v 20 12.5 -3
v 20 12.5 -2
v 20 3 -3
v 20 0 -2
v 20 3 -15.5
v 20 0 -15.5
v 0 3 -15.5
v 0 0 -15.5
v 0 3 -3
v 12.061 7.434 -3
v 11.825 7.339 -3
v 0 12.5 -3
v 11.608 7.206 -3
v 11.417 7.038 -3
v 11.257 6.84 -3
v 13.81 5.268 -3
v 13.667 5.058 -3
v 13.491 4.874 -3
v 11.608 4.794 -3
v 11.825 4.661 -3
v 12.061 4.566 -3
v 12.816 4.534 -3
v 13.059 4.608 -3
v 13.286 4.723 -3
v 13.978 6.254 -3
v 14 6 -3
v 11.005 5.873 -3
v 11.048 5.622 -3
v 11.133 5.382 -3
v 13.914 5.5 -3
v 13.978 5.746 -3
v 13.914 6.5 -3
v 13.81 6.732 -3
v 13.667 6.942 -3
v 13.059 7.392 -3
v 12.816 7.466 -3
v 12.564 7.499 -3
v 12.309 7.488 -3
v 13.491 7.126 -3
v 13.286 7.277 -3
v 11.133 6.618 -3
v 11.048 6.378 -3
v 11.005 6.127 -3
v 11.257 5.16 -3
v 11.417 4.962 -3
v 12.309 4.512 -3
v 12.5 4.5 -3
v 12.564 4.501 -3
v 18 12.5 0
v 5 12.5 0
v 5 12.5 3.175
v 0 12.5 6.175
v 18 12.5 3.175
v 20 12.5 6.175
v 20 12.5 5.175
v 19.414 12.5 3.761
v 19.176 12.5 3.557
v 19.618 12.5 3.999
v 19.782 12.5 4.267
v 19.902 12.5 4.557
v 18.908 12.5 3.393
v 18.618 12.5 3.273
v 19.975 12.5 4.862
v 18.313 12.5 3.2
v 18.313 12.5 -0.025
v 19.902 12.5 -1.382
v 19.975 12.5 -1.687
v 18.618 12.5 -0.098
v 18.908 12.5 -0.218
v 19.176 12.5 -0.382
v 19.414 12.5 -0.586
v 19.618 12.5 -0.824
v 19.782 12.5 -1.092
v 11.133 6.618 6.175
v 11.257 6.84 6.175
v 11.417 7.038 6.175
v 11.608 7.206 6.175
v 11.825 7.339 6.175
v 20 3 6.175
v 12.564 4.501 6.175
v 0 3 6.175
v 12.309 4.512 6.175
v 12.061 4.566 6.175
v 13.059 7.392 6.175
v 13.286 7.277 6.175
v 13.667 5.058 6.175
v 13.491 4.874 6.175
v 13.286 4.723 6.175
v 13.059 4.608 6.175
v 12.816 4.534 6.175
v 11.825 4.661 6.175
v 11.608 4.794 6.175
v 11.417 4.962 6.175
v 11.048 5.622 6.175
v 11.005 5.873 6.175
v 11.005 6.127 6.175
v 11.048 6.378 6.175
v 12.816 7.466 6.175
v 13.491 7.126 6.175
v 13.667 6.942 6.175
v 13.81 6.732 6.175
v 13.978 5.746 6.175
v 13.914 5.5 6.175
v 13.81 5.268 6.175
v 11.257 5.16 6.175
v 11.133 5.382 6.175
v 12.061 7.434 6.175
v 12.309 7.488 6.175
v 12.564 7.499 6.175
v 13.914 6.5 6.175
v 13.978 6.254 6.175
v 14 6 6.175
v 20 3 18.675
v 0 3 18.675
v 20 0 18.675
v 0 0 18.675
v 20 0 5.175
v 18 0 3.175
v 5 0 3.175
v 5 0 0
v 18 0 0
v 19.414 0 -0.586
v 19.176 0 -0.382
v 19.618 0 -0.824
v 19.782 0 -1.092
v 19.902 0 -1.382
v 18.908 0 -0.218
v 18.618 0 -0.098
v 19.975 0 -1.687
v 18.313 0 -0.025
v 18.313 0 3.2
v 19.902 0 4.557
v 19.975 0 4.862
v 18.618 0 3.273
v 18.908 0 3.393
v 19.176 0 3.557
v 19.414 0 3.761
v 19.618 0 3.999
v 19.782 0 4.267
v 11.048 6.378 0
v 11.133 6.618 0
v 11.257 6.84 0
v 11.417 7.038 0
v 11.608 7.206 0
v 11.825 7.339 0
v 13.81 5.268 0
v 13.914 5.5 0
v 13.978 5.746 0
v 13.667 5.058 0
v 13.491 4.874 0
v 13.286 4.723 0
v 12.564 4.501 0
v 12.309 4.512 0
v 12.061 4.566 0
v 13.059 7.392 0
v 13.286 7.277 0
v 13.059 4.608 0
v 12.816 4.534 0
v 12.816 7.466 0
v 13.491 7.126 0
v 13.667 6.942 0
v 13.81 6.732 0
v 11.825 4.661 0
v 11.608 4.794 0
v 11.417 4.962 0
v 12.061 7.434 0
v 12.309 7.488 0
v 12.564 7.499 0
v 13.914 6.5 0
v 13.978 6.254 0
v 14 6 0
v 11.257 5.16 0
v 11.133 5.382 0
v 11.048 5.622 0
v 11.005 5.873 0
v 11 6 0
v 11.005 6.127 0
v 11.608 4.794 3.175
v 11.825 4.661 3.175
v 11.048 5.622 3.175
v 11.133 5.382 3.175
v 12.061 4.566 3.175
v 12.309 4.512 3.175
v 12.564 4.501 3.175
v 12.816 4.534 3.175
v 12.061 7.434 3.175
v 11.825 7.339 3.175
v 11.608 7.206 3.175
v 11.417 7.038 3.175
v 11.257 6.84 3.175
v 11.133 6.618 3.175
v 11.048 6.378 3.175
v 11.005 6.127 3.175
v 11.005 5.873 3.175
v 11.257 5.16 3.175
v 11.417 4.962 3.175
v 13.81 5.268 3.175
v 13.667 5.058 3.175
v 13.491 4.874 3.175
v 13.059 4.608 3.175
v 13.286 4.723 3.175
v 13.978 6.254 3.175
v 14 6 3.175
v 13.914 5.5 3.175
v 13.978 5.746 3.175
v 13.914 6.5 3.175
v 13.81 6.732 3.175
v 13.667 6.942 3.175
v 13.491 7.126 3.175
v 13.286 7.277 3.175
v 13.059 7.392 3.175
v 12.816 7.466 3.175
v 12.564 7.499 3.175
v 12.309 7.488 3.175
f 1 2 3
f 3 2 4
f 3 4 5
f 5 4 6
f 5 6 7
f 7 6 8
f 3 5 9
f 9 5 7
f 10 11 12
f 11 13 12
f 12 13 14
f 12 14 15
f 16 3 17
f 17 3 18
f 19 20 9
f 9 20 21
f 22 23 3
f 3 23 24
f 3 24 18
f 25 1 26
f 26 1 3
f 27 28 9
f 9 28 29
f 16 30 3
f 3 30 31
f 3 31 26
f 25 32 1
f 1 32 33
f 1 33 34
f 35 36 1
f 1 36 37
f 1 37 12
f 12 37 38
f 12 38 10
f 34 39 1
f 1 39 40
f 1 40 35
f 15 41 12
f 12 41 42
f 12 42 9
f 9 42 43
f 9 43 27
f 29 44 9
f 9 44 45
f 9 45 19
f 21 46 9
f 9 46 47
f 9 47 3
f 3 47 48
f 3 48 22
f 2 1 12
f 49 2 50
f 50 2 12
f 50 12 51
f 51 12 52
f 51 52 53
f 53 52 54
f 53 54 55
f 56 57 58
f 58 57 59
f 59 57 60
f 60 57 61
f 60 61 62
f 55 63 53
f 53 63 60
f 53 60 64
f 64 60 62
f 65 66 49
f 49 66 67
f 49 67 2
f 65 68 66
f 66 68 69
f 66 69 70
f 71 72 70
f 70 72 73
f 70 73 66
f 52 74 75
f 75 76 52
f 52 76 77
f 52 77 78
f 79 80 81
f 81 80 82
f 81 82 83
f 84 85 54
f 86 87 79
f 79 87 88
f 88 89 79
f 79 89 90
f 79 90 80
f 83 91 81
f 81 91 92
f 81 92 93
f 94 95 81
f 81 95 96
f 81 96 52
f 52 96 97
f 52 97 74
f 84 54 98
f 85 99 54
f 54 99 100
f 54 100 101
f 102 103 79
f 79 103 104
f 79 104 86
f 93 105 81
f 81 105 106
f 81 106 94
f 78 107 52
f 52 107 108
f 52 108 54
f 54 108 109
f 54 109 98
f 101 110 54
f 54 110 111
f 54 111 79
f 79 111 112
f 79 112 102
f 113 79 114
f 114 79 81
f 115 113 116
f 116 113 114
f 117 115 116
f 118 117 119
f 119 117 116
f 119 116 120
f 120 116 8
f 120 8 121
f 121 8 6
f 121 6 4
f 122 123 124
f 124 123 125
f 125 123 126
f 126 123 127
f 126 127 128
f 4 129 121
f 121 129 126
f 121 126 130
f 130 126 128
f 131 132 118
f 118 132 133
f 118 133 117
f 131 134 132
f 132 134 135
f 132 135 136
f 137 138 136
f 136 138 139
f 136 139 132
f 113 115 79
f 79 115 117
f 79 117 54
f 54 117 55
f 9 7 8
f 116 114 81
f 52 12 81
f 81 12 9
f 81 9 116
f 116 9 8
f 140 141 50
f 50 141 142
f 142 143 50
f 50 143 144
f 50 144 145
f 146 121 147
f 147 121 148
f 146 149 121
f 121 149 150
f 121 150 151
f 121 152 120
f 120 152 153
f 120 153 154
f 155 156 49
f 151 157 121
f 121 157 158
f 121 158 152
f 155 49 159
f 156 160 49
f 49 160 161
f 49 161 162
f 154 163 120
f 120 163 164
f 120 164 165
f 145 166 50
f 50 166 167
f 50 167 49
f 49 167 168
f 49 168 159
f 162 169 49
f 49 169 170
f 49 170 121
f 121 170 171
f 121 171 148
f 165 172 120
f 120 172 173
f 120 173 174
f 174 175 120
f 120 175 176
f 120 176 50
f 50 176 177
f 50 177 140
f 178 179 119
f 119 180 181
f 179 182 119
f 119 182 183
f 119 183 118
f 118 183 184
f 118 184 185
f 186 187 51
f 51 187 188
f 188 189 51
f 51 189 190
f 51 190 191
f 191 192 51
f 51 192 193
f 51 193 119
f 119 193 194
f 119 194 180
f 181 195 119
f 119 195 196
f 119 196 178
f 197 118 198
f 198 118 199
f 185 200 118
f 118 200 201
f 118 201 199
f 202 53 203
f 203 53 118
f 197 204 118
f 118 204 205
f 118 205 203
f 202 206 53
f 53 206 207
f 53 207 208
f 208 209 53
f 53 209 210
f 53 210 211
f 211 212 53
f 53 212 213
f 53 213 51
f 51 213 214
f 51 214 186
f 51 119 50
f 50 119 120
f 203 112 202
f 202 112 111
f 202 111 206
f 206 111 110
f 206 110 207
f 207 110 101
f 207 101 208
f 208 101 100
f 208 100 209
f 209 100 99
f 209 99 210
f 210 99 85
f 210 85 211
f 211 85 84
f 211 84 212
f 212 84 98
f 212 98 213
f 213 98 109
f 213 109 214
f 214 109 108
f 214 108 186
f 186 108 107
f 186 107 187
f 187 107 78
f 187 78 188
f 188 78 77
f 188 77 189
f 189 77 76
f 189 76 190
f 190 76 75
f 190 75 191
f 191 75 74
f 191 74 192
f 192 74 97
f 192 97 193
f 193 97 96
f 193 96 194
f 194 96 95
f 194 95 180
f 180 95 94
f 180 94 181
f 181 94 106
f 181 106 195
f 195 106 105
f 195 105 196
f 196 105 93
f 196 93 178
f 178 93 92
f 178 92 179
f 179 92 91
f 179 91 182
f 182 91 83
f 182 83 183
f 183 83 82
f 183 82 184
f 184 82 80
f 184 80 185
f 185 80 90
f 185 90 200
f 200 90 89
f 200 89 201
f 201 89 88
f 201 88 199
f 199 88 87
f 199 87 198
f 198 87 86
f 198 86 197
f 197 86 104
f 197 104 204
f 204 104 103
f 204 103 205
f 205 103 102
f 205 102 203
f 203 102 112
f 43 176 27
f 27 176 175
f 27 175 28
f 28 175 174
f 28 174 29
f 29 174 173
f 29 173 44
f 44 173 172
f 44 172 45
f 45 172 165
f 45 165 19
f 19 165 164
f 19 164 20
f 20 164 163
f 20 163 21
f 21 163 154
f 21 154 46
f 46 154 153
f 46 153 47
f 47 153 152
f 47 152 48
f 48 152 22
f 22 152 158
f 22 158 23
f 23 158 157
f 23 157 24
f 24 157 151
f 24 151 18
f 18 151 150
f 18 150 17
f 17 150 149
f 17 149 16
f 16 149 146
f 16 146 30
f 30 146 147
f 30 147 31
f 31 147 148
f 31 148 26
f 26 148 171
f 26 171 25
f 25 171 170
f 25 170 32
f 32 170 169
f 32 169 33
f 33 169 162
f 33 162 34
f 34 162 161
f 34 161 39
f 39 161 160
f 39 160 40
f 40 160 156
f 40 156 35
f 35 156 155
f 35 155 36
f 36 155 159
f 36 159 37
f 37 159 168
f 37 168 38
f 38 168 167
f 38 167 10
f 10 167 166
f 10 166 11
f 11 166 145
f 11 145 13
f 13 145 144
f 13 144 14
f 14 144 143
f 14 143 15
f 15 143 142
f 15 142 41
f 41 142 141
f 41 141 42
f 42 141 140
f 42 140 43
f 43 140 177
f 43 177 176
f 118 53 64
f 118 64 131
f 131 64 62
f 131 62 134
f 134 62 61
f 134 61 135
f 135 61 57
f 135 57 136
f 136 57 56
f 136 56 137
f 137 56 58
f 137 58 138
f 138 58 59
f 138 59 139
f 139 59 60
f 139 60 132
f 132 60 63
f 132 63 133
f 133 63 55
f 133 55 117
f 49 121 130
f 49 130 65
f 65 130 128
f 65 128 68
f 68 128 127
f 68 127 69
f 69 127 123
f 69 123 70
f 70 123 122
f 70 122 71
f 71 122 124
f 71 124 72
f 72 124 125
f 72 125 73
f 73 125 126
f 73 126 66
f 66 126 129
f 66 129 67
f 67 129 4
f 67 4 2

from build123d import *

# Parameters (mm, degrees)
BOSS_EXTRUDE1_DEPTH = 20
SKETCH2_W           = 3.175
SKETCH2_H           = 12.5
CUT_EXTRUDE1_DEPTH  = 15
SKETCH3_R           = 1.5
CUT_EXTRUDE2_DEPTH  = 33.032103037
FILLET1_R           = 2


with BuildPart() as part:
    # Sketch1 → Boss-Extrude1 (new body)
    with BuildSketch(Plane(origin=(0, 0, 0), x_dir=(0, 0, -1), z_dir=(1, 0, 0))):
        Polygon((0, 12.5), (3, 12.5), (3, 3), (15.5, 3), (15.5, 0), (0, 0), (-3.175, 0), (-18.675, 0), (-18.675, 3), (-6.175, 3), (-6.175, 12.5), (-3.175, 12.5), align=None)
    extrude(amount=BOSS_EXTRUDE1_DEPTH)

    # Sketch2 → Cut-Extrude1 (cut)
    with BuildSketch(Plane(origin=(20, 0, 0), x_dir=(0, 0, -1), z_dir=(1, 0, 0))):
        with Locations((-1.5875, 6.25)):
            Rectangle(SKETCH2_W, SKETCH2_H)
    extrude(amount=-CUT_EXTRUDE1_DEPTH, mode=Mode.SUBTRACT)

    # Sketch3 → Cut-Extrude2 (cut, through all)
    with BuildSketch(Plane.XY.offset(6.175)):
        with Locations((12.5, 6)):
            Circle(SKETCH3_R)
    extrude(amount=-CUT_EXTRUDE2_DEPTH, mode=Mode.SUBTRACT)

    # Fillet1
    fillet1_edges = [part.edges().sort_by_distance(p)[0] for p in [
        (20, 6.25, 0),
        (20, 6.25, 3.175),
    ]]
    fillet(fillet1_edges, radius=FILLET1_R)


solid = part.part
